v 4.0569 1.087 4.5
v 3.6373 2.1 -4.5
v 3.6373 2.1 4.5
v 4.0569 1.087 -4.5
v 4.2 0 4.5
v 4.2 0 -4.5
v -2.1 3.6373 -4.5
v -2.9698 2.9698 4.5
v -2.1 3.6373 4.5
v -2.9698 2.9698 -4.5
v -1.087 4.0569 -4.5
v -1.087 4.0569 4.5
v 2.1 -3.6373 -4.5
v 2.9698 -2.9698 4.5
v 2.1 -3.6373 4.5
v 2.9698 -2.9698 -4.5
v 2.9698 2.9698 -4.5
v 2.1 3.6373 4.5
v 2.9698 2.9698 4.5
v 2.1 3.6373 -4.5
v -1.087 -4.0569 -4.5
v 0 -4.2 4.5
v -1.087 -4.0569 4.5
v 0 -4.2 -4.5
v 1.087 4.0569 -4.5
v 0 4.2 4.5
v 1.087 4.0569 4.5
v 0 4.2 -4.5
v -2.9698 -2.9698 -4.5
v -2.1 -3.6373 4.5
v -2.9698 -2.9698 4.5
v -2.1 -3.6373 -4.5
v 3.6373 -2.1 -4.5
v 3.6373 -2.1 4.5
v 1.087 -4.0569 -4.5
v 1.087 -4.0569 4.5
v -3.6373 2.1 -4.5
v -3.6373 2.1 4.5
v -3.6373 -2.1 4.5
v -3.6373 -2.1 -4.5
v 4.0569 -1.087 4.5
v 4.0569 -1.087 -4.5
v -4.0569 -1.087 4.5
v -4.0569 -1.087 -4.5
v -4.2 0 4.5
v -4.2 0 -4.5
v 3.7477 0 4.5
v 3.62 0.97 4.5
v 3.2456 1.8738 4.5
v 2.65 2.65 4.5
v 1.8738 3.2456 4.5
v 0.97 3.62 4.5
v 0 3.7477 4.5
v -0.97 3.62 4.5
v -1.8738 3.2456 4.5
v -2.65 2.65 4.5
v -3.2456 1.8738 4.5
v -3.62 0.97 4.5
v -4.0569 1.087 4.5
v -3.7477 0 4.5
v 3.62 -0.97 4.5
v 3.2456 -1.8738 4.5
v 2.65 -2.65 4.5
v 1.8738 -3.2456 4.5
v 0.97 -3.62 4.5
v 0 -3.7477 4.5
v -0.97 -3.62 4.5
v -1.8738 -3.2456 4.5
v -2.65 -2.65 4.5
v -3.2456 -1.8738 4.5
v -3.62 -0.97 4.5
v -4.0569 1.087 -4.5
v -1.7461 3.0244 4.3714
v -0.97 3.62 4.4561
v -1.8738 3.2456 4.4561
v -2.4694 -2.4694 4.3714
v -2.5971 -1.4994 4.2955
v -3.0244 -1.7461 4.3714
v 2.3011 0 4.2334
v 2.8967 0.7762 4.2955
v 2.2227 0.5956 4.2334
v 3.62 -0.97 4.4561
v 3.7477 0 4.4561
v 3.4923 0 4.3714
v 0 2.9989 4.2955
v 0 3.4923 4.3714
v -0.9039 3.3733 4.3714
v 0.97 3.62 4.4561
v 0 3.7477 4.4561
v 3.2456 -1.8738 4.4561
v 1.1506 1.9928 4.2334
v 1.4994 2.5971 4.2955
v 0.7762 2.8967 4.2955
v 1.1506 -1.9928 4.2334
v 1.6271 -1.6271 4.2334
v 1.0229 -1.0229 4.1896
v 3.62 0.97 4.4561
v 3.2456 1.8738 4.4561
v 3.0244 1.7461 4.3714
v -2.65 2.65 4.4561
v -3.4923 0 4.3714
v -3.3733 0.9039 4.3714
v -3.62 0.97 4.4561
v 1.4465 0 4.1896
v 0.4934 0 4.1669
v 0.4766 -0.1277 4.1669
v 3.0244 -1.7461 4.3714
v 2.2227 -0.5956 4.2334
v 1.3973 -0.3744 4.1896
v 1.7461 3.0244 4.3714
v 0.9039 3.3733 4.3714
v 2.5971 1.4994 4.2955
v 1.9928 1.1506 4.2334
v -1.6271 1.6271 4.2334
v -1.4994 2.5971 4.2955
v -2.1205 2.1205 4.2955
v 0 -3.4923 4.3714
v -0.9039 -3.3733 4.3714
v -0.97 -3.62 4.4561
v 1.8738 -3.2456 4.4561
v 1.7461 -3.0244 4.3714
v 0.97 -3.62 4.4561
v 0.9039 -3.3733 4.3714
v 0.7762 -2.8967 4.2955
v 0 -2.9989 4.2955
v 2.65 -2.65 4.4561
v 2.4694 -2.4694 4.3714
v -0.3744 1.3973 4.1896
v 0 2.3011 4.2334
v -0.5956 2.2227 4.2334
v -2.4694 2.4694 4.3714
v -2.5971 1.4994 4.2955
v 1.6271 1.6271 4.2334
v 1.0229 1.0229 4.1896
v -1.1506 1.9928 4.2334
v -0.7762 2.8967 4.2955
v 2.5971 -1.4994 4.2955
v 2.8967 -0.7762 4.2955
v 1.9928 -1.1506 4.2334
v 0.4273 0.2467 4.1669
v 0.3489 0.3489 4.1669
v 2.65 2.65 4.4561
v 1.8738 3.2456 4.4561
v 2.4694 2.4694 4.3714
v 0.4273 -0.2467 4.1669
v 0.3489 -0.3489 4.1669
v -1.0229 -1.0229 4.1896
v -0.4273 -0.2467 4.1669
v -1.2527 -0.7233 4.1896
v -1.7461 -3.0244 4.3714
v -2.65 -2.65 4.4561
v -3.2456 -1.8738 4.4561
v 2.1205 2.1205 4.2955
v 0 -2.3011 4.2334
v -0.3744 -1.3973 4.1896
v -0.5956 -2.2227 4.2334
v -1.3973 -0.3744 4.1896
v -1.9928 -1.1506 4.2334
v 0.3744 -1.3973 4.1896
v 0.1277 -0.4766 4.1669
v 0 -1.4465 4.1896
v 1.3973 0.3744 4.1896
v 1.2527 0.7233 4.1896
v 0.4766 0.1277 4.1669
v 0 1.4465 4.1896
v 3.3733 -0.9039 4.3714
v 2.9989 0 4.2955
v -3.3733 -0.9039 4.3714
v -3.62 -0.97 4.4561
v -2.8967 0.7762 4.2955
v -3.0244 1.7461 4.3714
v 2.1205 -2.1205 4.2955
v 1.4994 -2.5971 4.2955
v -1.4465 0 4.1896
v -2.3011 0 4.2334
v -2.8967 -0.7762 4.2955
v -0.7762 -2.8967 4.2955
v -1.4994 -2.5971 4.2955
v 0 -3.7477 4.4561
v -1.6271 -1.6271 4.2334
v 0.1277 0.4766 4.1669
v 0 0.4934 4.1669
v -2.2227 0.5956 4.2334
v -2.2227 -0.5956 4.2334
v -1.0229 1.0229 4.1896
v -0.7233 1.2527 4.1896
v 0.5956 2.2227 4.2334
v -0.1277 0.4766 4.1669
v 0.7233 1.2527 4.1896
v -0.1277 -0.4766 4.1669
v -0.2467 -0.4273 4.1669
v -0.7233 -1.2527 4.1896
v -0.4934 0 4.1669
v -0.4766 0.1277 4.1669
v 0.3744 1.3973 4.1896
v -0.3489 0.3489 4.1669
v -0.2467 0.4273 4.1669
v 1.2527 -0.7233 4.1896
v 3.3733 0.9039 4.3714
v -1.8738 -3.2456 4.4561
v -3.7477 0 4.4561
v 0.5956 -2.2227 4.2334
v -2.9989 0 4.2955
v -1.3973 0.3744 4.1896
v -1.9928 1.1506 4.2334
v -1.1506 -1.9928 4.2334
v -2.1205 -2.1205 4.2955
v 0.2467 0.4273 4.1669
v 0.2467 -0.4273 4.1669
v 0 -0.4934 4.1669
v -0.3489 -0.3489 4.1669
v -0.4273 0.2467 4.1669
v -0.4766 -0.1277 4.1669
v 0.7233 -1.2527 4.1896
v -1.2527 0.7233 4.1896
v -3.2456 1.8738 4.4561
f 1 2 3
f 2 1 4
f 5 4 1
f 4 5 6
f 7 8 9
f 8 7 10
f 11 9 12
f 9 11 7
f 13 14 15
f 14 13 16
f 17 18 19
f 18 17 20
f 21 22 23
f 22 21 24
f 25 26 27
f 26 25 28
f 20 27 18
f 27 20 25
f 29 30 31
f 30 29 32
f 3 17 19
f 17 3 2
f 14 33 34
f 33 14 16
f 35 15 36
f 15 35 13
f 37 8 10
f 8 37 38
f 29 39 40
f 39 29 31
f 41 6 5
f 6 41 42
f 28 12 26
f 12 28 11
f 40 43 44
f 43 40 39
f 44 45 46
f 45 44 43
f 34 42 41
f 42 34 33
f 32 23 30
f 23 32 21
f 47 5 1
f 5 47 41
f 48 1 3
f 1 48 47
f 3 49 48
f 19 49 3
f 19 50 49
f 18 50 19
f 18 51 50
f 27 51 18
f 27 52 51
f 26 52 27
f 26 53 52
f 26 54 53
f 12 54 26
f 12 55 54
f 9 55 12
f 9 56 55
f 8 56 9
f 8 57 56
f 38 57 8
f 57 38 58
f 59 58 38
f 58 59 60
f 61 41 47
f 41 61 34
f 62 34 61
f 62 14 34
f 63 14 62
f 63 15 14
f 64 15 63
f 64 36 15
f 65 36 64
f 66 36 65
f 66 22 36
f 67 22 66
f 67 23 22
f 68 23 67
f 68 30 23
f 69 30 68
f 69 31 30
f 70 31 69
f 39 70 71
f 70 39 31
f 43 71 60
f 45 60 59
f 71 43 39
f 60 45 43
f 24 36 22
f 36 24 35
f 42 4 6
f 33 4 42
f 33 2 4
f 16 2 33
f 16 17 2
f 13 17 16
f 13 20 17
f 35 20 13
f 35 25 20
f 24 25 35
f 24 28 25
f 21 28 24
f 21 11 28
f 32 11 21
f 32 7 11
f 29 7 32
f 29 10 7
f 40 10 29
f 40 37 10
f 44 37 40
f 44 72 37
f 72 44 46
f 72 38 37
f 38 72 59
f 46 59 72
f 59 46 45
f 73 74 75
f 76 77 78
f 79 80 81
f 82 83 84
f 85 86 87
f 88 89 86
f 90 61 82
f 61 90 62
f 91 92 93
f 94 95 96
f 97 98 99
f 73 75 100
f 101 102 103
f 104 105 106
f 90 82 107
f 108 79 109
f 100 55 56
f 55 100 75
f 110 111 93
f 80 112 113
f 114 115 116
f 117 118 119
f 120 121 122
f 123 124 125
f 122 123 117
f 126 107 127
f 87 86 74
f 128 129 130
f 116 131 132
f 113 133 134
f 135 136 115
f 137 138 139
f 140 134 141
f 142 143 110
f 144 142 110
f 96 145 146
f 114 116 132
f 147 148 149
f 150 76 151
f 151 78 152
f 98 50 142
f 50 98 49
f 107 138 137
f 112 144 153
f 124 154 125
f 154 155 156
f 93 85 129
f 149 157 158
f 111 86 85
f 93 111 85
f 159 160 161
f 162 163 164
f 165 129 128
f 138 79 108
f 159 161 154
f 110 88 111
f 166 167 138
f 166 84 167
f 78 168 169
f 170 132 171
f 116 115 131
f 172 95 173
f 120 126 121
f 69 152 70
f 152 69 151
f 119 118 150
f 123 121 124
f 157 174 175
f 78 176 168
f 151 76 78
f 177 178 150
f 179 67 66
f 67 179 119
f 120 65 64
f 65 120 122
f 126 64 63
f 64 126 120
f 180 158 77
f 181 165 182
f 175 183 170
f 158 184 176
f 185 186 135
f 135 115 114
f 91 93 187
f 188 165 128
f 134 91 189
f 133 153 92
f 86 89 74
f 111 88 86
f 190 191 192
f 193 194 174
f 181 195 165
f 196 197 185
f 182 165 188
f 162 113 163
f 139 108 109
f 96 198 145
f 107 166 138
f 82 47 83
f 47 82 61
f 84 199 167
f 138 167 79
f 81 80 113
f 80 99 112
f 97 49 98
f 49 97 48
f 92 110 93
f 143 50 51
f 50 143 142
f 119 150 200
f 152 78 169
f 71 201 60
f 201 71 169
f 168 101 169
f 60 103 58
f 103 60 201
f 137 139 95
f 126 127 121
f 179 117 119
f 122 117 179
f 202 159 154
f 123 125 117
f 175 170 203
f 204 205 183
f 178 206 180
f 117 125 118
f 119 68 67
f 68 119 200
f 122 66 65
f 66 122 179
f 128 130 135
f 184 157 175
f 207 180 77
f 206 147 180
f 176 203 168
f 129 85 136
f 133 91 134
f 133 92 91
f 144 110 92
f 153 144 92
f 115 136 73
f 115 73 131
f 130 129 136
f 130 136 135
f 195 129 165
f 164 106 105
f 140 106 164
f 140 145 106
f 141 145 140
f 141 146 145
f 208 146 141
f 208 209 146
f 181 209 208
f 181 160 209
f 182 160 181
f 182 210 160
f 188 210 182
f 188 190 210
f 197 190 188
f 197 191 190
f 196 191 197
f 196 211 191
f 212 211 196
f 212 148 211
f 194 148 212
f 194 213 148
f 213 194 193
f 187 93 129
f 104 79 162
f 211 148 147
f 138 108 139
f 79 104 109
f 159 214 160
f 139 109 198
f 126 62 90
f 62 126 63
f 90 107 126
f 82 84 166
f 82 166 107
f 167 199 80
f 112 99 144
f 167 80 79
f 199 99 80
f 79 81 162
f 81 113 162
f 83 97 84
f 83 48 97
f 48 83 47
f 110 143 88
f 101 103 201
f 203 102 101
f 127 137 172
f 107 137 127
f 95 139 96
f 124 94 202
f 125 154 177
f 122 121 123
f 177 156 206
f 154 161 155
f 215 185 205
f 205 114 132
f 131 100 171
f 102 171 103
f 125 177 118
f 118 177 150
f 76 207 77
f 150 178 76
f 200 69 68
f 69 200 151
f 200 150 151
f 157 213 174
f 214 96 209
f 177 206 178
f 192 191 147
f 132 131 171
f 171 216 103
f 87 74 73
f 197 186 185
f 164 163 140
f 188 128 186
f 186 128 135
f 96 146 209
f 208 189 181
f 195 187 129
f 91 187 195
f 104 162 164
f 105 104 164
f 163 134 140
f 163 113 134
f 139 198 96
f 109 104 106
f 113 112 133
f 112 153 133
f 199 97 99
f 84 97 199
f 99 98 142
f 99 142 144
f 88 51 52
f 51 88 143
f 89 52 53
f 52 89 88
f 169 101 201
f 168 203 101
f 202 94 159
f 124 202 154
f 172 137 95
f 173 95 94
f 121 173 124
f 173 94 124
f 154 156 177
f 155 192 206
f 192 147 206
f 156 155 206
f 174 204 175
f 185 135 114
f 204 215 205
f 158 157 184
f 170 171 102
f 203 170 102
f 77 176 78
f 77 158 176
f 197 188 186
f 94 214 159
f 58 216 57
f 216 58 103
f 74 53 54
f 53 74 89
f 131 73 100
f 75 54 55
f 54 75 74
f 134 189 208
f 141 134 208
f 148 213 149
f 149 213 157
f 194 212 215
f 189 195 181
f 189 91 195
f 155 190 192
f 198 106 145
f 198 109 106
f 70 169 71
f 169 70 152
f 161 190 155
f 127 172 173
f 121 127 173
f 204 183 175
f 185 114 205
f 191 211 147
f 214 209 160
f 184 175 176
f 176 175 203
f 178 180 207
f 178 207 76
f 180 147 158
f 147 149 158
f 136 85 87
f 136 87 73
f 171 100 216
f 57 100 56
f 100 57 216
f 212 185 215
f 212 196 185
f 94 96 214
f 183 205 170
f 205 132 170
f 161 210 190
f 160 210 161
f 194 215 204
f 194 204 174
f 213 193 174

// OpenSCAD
$face_button_radius = 8.4 / 2;
$button_depth = 9;


module button(){
  difference(){
  cylinder(h=$button_depth, r = $face_button_radius, center= true, $fn=24);
  translate([0,0,($button_depth / 2)])
    scale([0.9,0.9,0.08])
      sphere(r=$face_button_radius, $fn=24);
  }
}


button();
